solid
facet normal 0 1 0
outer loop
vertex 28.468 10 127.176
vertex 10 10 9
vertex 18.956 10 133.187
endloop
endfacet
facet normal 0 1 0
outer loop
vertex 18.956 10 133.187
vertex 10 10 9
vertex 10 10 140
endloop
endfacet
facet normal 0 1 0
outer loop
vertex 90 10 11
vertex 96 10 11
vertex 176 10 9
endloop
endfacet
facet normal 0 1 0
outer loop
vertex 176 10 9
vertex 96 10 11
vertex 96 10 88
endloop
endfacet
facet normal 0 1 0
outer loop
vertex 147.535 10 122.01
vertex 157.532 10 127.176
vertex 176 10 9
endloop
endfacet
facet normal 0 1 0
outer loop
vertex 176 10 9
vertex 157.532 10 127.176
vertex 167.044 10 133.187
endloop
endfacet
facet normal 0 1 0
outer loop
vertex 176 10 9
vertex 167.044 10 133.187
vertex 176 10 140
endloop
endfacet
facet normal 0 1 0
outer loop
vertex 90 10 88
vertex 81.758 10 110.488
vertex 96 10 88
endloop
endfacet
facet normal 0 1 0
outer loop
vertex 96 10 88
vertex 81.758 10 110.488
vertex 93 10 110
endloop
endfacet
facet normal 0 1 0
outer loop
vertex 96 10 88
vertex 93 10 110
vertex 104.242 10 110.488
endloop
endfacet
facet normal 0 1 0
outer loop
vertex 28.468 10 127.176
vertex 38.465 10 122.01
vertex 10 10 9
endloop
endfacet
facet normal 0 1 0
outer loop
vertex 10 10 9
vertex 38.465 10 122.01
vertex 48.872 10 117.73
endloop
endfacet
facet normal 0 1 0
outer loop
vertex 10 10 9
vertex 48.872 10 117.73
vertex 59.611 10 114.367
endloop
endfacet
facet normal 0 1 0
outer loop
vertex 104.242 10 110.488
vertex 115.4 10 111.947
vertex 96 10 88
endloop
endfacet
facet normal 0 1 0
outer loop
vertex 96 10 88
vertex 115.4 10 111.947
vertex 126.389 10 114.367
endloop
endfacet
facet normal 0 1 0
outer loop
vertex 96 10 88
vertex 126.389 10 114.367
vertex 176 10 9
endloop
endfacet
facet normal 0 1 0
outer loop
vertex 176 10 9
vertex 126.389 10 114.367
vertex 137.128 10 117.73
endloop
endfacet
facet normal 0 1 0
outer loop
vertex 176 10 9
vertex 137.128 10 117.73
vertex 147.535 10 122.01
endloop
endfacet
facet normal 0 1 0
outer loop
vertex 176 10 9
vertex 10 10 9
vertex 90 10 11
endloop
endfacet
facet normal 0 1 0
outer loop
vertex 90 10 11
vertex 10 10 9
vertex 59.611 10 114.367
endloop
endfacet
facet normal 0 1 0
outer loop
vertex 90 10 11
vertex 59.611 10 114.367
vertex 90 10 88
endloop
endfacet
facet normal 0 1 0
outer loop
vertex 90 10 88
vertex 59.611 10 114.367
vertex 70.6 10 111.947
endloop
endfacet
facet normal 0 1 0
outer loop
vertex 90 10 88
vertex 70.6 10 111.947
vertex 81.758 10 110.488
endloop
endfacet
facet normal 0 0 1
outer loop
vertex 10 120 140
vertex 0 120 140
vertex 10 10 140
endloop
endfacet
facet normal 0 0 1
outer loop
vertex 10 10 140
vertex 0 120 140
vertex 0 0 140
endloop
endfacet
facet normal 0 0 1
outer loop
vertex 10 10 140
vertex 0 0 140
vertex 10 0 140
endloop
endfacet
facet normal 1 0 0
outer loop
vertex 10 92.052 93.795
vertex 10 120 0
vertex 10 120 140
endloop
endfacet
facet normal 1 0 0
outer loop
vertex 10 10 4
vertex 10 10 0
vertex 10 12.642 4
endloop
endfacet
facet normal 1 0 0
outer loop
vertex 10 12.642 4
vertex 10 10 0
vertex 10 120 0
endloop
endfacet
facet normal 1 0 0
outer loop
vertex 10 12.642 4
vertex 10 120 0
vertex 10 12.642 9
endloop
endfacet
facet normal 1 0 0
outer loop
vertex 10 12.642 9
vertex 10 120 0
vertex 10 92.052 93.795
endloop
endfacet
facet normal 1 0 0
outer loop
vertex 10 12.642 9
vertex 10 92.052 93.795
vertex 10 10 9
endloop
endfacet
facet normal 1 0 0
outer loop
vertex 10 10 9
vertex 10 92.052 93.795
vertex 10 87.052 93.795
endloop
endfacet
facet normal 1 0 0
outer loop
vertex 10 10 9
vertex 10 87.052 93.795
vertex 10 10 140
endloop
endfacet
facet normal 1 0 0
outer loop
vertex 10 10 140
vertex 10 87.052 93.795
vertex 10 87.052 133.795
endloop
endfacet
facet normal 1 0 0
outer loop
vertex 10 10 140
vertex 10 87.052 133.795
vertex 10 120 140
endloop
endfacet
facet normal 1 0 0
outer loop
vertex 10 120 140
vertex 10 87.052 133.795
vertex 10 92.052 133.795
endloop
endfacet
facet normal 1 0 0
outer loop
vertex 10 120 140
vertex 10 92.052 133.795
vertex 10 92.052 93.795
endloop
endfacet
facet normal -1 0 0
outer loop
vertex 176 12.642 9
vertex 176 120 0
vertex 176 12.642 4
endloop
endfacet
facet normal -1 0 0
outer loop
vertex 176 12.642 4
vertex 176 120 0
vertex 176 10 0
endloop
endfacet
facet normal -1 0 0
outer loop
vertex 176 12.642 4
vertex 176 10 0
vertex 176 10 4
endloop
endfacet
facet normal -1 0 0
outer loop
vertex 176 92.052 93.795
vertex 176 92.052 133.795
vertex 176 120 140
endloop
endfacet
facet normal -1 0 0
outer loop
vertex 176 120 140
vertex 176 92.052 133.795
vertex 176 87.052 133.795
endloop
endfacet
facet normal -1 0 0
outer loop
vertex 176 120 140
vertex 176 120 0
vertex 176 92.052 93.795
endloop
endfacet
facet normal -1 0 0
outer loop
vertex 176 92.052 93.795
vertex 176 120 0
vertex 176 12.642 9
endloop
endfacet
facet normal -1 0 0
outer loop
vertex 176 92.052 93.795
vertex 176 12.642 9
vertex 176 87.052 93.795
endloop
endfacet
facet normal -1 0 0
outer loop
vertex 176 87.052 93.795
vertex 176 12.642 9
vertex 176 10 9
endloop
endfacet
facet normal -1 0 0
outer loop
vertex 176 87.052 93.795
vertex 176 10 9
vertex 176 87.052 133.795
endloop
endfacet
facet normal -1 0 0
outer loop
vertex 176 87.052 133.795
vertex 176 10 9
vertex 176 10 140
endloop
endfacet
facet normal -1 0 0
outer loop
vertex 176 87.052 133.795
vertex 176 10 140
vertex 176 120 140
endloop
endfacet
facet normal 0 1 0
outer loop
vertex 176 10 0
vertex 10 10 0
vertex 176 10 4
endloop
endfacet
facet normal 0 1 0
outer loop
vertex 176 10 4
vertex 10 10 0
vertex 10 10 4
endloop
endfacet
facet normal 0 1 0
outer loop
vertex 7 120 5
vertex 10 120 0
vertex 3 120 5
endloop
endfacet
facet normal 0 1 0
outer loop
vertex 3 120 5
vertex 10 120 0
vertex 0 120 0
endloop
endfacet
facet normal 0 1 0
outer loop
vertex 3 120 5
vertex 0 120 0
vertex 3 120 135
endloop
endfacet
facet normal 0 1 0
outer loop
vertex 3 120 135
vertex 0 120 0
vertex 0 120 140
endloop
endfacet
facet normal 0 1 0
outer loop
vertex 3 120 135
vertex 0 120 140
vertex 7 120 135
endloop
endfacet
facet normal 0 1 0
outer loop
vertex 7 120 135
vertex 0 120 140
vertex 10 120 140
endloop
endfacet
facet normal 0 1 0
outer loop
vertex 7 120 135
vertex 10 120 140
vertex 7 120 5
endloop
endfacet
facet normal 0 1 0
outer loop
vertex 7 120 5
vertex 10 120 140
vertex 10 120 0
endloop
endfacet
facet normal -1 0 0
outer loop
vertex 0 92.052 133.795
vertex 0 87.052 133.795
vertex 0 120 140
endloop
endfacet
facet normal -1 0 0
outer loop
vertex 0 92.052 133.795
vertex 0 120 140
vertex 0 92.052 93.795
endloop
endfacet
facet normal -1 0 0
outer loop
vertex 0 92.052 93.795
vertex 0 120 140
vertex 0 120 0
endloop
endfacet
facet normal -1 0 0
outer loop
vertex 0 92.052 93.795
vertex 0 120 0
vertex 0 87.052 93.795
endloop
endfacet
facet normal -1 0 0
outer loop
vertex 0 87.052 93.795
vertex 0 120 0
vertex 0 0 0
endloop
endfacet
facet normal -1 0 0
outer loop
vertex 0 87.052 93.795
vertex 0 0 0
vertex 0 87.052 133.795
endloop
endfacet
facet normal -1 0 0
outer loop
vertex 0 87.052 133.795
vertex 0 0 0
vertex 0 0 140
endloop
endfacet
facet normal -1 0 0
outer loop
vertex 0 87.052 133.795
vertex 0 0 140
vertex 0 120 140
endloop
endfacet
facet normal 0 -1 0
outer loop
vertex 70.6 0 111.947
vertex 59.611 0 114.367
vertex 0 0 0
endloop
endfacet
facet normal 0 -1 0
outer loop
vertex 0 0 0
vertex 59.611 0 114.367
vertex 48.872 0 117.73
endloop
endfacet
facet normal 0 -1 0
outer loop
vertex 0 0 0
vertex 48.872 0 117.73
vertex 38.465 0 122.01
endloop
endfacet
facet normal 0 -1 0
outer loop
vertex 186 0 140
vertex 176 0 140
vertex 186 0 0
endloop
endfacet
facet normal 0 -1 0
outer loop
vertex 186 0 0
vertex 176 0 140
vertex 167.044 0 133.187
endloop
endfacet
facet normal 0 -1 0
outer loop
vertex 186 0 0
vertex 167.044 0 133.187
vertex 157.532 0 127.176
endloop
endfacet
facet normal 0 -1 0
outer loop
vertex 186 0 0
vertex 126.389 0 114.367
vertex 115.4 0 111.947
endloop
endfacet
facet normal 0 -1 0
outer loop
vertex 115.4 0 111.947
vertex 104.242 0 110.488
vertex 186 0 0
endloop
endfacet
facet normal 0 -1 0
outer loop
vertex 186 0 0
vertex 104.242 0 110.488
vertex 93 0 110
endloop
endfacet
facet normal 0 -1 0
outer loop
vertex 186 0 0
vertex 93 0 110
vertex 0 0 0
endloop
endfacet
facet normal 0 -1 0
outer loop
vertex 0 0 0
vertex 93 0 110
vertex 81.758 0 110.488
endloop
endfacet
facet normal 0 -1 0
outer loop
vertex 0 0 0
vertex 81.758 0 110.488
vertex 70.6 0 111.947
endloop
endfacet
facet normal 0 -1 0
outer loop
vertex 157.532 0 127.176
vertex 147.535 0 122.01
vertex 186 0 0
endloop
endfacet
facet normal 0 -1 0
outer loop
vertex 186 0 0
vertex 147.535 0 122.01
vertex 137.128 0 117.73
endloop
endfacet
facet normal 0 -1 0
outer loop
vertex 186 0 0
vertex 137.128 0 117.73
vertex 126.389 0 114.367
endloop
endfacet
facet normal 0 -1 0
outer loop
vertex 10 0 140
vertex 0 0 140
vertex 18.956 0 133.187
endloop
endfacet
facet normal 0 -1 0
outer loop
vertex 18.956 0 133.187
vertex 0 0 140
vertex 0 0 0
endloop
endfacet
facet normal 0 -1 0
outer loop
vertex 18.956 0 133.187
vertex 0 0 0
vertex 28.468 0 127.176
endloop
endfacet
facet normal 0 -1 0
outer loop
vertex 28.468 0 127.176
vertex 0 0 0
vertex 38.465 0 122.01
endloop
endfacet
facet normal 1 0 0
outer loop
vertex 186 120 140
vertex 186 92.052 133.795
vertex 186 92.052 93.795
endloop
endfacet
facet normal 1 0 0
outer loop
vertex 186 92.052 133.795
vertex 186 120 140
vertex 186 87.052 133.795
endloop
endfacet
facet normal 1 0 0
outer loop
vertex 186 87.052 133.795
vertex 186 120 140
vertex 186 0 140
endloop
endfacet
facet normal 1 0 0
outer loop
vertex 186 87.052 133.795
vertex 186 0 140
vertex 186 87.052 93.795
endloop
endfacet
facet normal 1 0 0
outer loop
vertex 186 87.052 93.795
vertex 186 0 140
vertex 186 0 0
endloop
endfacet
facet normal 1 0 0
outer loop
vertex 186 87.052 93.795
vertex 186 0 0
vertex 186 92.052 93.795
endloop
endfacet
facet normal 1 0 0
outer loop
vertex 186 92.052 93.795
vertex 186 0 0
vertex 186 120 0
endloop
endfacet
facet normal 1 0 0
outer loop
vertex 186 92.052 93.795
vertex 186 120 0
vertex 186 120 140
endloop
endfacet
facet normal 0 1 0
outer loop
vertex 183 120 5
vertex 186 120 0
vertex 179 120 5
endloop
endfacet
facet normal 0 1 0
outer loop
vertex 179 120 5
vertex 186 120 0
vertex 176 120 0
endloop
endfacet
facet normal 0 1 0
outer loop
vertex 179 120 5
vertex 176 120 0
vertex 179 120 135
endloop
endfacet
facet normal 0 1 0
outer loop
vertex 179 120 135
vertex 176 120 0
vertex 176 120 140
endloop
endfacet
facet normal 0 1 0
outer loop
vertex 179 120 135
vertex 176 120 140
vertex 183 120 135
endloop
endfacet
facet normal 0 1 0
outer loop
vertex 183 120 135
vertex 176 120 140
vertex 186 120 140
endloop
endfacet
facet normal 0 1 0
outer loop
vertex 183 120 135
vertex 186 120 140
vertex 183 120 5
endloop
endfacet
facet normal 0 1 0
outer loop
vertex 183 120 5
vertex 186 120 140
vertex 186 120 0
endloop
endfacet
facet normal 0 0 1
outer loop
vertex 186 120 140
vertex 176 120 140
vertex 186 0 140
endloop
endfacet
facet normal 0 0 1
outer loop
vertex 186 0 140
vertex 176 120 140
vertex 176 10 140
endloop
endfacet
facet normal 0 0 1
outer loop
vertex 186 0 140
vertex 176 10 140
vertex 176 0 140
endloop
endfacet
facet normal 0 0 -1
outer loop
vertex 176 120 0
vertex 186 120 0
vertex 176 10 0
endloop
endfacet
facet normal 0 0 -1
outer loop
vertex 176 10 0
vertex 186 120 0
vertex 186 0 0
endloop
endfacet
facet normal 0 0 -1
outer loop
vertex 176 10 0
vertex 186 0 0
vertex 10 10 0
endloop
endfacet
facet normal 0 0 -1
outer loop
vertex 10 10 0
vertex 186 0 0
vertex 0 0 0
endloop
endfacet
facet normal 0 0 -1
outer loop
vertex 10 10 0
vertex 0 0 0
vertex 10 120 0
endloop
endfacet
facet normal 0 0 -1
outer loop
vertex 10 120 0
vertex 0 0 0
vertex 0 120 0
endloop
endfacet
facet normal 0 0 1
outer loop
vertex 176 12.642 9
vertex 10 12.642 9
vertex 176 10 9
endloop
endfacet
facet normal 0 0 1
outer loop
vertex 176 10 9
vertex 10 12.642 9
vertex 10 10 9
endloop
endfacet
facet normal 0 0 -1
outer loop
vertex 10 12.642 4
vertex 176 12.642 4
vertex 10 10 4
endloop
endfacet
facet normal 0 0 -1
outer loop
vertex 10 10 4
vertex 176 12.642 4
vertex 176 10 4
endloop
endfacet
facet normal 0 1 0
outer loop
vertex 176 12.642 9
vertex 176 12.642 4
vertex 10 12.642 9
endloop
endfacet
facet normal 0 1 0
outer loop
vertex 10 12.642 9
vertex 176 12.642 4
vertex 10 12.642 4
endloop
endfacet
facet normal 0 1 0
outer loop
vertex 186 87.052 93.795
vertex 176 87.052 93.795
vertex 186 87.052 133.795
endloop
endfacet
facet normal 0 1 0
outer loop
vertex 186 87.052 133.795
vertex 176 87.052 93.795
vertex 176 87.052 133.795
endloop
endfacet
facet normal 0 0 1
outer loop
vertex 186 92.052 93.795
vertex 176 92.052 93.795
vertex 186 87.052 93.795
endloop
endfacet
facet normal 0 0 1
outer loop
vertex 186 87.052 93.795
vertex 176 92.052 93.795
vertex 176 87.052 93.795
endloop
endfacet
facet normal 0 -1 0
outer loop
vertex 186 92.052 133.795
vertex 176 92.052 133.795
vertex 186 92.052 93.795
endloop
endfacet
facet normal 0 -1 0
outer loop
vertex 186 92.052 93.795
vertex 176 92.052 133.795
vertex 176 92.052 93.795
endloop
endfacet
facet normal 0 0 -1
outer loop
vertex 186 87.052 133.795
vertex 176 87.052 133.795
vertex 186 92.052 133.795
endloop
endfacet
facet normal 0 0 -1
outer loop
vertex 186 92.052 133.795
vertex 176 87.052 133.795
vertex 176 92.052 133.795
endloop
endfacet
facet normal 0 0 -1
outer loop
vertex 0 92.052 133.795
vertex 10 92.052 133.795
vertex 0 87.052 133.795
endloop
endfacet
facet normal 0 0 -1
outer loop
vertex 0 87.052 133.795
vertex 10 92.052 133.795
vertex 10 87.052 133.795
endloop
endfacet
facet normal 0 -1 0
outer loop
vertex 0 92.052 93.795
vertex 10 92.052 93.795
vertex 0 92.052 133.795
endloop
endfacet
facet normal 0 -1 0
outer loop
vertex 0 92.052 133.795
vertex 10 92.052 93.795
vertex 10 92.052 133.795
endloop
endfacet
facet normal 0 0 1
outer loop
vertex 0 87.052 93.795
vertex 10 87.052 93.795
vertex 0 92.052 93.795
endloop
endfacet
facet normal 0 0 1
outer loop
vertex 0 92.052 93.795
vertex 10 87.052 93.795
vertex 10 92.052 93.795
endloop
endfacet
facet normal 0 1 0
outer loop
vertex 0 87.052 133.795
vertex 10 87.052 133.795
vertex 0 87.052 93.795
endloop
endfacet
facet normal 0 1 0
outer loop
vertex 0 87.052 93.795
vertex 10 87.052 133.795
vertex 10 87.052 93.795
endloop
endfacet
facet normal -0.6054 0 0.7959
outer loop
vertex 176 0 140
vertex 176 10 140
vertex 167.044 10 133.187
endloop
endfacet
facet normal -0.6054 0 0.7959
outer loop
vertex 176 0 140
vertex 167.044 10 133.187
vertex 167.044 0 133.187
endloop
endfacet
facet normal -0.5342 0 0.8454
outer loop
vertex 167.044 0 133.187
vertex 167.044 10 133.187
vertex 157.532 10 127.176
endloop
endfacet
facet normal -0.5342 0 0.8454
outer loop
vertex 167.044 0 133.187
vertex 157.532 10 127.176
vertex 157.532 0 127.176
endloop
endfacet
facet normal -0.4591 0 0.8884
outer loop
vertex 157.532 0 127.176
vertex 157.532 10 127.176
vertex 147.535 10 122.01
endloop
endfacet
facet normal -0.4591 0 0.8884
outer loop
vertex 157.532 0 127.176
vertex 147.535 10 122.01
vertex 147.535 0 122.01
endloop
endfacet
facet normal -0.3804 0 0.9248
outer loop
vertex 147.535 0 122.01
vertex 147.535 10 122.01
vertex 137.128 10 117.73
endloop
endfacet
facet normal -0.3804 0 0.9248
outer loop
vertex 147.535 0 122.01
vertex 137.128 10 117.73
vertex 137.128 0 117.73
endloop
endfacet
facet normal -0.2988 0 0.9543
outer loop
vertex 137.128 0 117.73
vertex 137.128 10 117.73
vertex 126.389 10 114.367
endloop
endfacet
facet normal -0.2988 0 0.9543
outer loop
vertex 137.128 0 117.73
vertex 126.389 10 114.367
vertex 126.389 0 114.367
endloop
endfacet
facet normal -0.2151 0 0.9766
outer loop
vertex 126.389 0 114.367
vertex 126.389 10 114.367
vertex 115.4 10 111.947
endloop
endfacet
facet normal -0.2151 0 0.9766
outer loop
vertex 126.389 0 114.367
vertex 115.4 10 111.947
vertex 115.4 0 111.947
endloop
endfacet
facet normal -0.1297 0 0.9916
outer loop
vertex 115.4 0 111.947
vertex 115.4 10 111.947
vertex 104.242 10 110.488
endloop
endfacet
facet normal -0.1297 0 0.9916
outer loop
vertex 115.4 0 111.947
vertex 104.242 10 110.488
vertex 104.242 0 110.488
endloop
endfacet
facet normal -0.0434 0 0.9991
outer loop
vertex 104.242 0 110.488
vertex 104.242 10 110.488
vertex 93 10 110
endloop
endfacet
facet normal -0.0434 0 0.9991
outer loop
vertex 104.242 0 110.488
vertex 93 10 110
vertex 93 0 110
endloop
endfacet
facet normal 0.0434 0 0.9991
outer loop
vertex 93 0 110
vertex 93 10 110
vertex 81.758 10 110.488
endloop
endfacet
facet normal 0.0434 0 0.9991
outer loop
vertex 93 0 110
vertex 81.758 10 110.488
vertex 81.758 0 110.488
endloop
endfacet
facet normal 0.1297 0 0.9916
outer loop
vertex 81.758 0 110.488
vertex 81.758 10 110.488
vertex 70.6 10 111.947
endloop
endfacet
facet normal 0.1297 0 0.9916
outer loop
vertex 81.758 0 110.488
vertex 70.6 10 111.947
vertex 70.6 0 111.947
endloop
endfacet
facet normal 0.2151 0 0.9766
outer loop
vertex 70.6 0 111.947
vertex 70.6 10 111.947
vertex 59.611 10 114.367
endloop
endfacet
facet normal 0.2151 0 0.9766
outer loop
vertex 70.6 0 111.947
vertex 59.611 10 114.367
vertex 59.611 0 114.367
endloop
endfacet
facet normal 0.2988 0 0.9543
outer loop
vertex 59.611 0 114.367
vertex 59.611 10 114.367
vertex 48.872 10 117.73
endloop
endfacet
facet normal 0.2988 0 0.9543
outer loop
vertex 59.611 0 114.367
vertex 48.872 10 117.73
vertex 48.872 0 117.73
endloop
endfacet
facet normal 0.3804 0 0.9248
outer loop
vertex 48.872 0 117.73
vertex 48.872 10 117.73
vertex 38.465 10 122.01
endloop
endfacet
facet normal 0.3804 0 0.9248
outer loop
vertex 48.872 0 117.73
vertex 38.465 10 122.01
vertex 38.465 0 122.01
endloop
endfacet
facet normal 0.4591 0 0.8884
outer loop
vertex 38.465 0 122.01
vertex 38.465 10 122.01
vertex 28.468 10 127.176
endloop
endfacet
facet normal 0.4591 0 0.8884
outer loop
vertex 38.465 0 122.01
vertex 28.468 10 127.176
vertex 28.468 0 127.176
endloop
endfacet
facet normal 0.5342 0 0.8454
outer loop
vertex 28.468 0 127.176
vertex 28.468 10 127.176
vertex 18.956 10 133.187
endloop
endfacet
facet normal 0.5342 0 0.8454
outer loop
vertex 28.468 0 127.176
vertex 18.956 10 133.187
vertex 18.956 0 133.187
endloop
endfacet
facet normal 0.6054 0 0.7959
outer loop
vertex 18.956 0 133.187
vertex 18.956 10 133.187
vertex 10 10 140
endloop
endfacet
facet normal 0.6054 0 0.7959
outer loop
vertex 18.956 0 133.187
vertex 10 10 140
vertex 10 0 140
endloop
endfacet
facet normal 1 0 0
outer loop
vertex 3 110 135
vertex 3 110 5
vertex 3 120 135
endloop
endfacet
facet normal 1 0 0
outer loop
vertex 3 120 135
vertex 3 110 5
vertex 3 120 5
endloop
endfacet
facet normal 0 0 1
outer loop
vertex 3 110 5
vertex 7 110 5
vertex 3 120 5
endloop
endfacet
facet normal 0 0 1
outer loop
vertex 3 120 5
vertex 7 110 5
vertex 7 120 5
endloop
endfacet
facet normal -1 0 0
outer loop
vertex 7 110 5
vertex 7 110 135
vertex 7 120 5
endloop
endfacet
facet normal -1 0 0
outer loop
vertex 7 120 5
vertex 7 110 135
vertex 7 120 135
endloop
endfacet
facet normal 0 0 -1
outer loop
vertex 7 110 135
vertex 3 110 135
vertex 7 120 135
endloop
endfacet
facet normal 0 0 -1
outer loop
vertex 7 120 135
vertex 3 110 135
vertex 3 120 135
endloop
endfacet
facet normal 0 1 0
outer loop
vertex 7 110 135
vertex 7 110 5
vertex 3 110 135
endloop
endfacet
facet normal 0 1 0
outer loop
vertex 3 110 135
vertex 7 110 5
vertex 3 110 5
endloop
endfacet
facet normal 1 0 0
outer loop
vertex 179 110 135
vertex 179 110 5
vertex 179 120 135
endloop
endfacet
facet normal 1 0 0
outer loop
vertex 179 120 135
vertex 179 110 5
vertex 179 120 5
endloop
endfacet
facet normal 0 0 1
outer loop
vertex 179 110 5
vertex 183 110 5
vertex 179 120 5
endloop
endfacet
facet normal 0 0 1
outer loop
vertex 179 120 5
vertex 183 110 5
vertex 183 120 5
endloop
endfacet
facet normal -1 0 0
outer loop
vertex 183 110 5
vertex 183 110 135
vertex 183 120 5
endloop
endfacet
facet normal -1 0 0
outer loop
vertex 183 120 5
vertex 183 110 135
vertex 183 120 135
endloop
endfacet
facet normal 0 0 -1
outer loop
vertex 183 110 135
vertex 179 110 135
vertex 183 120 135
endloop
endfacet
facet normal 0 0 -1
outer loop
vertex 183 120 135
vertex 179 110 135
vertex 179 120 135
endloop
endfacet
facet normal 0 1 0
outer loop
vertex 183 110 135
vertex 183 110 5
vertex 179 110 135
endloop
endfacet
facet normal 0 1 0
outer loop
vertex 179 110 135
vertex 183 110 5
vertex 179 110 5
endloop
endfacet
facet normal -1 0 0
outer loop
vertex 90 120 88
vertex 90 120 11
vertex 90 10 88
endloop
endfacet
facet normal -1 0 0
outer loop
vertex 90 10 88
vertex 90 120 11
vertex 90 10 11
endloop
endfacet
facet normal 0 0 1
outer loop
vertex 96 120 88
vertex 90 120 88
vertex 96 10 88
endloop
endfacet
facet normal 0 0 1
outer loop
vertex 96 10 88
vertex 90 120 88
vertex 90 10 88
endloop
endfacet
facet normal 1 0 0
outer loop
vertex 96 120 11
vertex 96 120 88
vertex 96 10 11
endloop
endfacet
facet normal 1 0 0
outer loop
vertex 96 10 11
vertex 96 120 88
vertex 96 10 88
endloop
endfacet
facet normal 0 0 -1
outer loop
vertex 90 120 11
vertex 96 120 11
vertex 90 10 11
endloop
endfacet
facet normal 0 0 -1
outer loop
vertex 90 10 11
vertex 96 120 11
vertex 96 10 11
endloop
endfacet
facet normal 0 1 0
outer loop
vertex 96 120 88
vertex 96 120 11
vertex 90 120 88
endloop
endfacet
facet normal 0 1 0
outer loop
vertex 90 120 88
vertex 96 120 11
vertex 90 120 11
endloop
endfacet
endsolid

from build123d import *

# Parameters (mm, degrees)
EXTRUDE_THIN2_DEPTH     = 140
SKETCH11_W              = 166
SKETCH11_H              = 5
BOSS_EXTRUDE3_DEPTH     = 2.6416
CUT_EXTRUDE6_DEPTH      = 255.903903462
CUT_EXTRUDE6_DEPTH_BACK = 255.903903462
SKETCH13_W              = 40
SKETCH13_H              = 5
CUT_EXTRUDE7_DEPTH      = 258.480096318
SKETCH19_W              = 4
SKETCH19_H              = 130
CUT_EXTRUDE9_DEPTH      = 10
SKETCH20_W              = 4
SKETCH20_H              = 130
CUT_EXTRUDE10_DEPTH     = 10
SKETCH21_W              = 6
SKETCH21_H              = 77
BOSS_EXTRUDE4_DEPTH     = 110


with BuildPart() as part:
    # Sketch2 → Extrude-Thin2 (new body)
    with BuildSketch(Plane.XY):
        Polygon((0, 120), (0, 0), (186, 0), (186, 120), (176, 120), (176, 10), (10, 10), (10, 120), align=None)
    extrude(amount=EXTRUDE_THIN2_DEPTH)

    # Sketch11 → Boss-Extrude3 (add)
    with BuildSketch(Plane(origin=(0, 10, 0), x_dir=(1, 0, 0), z_dir=(0, 1, 0))):
        with Locations((93, -6.5)):
            Rectangle(SKETCH11_W, SKETCH11_H)
    extrude(amount=BOSS_EXTRUDE3_DEPTH)

    # Sketch13 → Cut-Extrude6 (cut, two sides: drawn at the far end of the back side and taken through both)
    with BuildSketch(Plane(origin=(10, 0, 0), x_dir=(0, 0, -1), z_dir=(1, 0, 0)).offset(-CUT_EXTRUDE6_DEPTH_BACK)):
        with Locations((-113.795011338, 89.551599899)):
            Rectangle(SKETCH13_W, SKETCH13_H)
    extrude(amount=CUT_EXTRUDE6_DEPTH + CUT_EXTRUDE6_DEPTH_BACK, mode=Mode.SUBTRACT)

    # Sketch14 → Cut-Extrude7 (cut, through all)
    with BuildSketch(Plane(origin=(0, 10, 0), x_dir=(1, 0, 0), z_dir=(0, 1, 0))):
        with BuildLine():
            Line((176, -140), (10, -140))
            ThreePointArc((10, -140), (93, -110), (176, -140))
        make_face()
    extrude(amount=-CUT_EXTRUDE7_DEPTH, mode=Mode.SUBTRACT)

    # Sketch19 → Cut-Extrude9 (cut)
    with BuildSketch(Plane(origin=(0, 120, 0), x_dir=(1, 0, 0), z_dir=(0, 1, 0))):
        with Locations((5, -70)):
            Rectangle(SKETCH19_W, SKETCH19_H)
    extrude(amount=-CUT_EXTRUDE9_DEPTH, mode=Mode.SUBTRACT)

    # Sketch20 → Cut-Extrude10 (cut)
    with BuildSketch(Plane(origin=(0, 120, 0), x_dir=(1, 0, 0), z_dir=(0, 1, 0))):
        with Locations((181, -70)):
            Rectangle(SKETCH20_W, SKETCH20_H)
    extrude(amount=-CUT_EXTRUDE10_DEPTH, mode=Mode.SUBTRACT)

    # Sketch21 → Boss-Extrude4 (add, through all)
    with BuildSketch(Plane(origin=(0, 10, 0), x_dir=(1, 0, 0), z_dir=(0, 1, 0))):
        with Locations((93, -49.5)):
            Rectangle(SKETCH21_W, SKETCH21_H)
    extrude(amount=BOSS_EXTRUDE4_DEPTH)


solid = part.part
